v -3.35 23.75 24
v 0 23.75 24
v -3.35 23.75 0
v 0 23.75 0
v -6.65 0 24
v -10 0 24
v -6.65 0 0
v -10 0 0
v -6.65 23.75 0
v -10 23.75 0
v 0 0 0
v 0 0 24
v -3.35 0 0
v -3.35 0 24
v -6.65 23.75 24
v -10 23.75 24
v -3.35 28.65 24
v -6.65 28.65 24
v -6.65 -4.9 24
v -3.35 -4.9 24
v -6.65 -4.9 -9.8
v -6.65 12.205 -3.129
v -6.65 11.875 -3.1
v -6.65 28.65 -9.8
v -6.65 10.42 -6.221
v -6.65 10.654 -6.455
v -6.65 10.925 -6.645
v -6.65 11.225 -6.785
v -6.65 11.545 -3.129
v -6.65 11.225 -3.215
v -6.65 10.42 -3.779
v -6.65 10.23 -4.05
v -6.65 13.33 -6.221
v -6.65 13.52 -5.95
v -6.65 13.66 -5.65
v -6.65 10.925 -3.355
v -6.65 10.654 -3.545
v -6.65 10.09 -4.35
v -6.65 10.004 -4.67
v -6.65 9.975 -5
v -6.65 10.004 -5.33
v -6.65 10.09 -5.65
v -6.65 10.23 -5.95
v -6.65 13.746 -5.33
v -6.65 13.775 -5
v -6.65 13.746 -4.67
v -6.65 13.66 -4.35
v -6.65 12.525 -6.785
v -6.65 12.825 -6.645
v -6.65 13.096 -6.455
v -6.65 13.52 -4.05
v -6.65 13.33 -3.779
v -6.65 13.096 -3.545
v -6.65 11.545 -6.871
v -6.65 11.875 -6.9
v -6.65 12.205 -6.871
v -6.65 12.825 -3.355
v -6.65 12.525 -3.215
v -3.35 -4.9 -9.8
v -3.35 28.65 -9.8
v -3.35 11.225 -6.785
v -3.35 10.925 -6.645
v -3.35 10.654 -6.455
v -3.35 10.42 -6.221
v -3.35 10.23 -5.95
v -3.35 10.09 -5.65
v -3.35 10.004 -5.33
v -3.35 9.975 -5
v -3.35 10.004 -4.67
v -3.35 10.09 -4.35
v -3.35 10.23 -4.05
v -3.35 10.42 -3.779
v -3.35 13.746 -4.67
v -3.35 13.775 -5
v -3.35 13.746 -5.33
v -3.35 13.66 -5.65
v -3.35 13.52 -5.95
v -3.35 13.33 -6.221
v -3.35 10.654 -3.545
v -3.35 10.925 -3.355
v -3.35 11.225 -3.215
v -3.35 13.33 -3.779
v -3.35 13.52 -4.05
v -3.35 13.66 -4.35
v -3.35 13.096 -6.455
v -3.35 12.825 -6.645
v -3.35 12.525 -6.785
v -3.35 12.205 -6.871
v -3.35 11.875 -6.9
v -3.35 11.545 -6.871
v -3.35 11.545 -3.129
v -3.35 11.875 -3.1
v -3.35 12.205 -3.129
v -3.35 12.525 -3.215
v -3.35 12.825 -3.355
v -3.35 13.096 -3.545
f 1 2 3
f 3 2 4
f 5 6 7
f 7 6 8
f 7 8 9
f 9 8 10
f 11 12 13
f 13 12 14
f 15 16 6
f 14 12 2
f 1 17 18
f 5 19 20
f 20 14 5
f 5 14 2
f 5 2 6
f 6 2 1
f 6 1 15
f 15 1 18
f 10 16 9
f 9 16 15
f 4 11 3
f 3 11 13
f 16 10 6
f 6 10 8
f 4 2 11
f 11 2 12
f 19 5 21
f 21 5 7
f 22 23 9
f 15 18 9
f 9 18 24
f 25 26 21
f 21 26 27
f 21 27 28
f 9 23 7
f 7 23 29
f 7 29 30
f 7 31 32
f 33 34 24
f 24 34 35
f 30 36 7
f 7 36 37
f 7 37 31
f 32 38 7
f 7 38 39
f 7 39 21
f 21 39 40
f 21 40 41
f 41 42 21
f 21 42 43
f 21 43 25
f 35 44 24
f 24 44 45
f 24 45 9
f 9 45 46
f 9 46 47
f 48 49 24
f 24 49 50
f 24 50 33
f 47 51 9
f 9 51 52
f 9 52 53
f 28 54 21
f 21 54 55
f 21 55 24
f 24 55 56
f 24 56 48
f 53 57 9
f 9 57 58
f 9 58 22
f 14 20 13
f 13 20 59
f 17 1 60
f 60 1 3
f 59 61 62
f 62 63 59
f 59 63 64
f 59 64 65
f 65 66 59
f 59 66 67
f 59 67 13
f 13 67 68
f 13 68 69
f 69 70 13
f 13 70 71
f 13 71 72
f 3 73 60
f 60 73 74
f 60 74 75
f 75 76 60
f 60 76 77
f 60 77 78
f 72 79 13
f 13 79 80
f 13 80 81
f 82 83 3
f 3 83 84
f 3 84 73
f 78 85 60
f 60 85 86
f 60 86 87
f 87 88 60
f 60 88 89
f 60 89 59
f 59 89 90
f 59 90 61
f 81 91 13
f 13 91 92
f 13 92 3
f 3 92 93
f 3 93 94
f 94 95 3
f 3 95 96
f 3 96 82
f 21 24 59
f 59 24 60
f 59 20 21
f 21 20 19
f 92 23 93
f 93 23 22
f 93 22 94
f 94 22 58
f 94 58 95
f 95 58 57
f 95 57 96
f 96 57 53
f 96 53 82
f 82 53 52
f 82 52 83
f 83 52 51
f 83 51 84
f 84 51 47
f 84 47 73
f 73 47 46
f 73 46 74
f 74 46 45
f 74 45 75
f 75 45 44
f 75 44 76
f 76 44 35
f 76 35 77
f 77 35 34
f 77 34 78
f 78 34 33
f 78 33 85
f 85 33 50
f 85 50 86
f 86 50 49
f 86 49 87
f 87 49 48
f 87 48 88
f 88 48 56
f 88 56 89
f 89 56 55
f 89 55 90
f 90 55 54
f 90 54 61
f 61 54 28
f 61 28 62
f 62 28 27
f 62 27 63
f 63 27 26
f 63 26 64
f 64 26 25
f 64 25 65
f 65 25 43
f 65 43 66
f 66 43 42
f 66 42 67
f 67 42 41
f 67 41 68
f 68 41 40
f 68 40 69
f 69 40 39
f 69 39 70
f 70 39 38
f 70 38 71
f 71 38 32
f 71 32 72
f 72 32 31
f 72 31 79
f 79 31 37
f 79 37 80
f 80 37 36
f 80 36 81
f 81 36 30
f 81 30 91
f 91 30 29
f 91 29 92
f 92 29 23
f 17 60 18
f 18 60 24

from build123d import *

# Parameters (mm, degrees)
SKETCH1_W           = 23.75
SKETCH1_H           = 24
BOSS_EXTRUDE1_DEPTH = 10
SKETCH2_W           = 3.3
SKETCH2_H           = 9.8
BOSS_EXTRUDE2_DEPTH = 23.75
SKETCH3_W           = 3.3
SKETCH3_H           = 33.8
BOSS_EXTRUDE3_DEPTH = 4.9
CUT_EXTRUDE1_REACH  = 36.413
SKETCH4_R           = 1.9


with BuildPart() as part:
    # Sketch1 → Boss-Extrude1 (new body)
    with BuildSketch(Plane.YZ):
        with Locations((11.875, 12)):
            Rectangle(SKETCH1_W, SKETCH1_H)
    extrude(amount=-BOSS_EXTRUDE1_DEPTH)

    # Sketch2 → Boss-Extrude2 (add, through all)
    with BuildSketch(Plane.XZ):
        with Locations((-5, -4.9)):
            Rectangle(SKETCH2_W, SKETCH2_H)
    extrude(amount=-BOSS_EXTRUDE2_DEPTH)

    # Sketch3 → Boss-Extrude3 (add)
    with BuildSketch(Plane.XZ):
        with Locations((-5, 7.1)):
            Rectangle(SKETCH3_W, SKETCH3_H)
    boss_extrude3 = extrude(amount=BOSS_EXTRUDE3_DEPTH)

    # Sketch4 → Cut-Extrude1 (cut, up to next)
    with BuildSketch(Plane(origin=(-6.65, 0, 0), x_dir=(0, -1, 0), z_dir=(-1, 0, 0)), mode=Mode.PRIVATE) as cut_extrude1_sk1:
        with Locations(Location((-11.875, -5, 0), (0, 0, 90))):
            Circle(SKETCH4_R)
    cut_extrude1_tool1 = extrude(cut_extrude1_sk1.sketch, amount=-CUT_EXTRUDE1_REACH, mode=Mode.PRIVATE) & part.part
    add(cut_extrude1_tool1.solids().sort_by_distance((-6.65, 11.875, -5))[0], mode=Mode.SUBTRACT)

    # Mirror1: Boss-Extrude3 across plane
    add(boss_extrude3.mirror(Plane(origin=(0, 11.875, 0), x_dir=(0, 0, 1), z_dir=(0, -1, 0))))


solid = part.part
